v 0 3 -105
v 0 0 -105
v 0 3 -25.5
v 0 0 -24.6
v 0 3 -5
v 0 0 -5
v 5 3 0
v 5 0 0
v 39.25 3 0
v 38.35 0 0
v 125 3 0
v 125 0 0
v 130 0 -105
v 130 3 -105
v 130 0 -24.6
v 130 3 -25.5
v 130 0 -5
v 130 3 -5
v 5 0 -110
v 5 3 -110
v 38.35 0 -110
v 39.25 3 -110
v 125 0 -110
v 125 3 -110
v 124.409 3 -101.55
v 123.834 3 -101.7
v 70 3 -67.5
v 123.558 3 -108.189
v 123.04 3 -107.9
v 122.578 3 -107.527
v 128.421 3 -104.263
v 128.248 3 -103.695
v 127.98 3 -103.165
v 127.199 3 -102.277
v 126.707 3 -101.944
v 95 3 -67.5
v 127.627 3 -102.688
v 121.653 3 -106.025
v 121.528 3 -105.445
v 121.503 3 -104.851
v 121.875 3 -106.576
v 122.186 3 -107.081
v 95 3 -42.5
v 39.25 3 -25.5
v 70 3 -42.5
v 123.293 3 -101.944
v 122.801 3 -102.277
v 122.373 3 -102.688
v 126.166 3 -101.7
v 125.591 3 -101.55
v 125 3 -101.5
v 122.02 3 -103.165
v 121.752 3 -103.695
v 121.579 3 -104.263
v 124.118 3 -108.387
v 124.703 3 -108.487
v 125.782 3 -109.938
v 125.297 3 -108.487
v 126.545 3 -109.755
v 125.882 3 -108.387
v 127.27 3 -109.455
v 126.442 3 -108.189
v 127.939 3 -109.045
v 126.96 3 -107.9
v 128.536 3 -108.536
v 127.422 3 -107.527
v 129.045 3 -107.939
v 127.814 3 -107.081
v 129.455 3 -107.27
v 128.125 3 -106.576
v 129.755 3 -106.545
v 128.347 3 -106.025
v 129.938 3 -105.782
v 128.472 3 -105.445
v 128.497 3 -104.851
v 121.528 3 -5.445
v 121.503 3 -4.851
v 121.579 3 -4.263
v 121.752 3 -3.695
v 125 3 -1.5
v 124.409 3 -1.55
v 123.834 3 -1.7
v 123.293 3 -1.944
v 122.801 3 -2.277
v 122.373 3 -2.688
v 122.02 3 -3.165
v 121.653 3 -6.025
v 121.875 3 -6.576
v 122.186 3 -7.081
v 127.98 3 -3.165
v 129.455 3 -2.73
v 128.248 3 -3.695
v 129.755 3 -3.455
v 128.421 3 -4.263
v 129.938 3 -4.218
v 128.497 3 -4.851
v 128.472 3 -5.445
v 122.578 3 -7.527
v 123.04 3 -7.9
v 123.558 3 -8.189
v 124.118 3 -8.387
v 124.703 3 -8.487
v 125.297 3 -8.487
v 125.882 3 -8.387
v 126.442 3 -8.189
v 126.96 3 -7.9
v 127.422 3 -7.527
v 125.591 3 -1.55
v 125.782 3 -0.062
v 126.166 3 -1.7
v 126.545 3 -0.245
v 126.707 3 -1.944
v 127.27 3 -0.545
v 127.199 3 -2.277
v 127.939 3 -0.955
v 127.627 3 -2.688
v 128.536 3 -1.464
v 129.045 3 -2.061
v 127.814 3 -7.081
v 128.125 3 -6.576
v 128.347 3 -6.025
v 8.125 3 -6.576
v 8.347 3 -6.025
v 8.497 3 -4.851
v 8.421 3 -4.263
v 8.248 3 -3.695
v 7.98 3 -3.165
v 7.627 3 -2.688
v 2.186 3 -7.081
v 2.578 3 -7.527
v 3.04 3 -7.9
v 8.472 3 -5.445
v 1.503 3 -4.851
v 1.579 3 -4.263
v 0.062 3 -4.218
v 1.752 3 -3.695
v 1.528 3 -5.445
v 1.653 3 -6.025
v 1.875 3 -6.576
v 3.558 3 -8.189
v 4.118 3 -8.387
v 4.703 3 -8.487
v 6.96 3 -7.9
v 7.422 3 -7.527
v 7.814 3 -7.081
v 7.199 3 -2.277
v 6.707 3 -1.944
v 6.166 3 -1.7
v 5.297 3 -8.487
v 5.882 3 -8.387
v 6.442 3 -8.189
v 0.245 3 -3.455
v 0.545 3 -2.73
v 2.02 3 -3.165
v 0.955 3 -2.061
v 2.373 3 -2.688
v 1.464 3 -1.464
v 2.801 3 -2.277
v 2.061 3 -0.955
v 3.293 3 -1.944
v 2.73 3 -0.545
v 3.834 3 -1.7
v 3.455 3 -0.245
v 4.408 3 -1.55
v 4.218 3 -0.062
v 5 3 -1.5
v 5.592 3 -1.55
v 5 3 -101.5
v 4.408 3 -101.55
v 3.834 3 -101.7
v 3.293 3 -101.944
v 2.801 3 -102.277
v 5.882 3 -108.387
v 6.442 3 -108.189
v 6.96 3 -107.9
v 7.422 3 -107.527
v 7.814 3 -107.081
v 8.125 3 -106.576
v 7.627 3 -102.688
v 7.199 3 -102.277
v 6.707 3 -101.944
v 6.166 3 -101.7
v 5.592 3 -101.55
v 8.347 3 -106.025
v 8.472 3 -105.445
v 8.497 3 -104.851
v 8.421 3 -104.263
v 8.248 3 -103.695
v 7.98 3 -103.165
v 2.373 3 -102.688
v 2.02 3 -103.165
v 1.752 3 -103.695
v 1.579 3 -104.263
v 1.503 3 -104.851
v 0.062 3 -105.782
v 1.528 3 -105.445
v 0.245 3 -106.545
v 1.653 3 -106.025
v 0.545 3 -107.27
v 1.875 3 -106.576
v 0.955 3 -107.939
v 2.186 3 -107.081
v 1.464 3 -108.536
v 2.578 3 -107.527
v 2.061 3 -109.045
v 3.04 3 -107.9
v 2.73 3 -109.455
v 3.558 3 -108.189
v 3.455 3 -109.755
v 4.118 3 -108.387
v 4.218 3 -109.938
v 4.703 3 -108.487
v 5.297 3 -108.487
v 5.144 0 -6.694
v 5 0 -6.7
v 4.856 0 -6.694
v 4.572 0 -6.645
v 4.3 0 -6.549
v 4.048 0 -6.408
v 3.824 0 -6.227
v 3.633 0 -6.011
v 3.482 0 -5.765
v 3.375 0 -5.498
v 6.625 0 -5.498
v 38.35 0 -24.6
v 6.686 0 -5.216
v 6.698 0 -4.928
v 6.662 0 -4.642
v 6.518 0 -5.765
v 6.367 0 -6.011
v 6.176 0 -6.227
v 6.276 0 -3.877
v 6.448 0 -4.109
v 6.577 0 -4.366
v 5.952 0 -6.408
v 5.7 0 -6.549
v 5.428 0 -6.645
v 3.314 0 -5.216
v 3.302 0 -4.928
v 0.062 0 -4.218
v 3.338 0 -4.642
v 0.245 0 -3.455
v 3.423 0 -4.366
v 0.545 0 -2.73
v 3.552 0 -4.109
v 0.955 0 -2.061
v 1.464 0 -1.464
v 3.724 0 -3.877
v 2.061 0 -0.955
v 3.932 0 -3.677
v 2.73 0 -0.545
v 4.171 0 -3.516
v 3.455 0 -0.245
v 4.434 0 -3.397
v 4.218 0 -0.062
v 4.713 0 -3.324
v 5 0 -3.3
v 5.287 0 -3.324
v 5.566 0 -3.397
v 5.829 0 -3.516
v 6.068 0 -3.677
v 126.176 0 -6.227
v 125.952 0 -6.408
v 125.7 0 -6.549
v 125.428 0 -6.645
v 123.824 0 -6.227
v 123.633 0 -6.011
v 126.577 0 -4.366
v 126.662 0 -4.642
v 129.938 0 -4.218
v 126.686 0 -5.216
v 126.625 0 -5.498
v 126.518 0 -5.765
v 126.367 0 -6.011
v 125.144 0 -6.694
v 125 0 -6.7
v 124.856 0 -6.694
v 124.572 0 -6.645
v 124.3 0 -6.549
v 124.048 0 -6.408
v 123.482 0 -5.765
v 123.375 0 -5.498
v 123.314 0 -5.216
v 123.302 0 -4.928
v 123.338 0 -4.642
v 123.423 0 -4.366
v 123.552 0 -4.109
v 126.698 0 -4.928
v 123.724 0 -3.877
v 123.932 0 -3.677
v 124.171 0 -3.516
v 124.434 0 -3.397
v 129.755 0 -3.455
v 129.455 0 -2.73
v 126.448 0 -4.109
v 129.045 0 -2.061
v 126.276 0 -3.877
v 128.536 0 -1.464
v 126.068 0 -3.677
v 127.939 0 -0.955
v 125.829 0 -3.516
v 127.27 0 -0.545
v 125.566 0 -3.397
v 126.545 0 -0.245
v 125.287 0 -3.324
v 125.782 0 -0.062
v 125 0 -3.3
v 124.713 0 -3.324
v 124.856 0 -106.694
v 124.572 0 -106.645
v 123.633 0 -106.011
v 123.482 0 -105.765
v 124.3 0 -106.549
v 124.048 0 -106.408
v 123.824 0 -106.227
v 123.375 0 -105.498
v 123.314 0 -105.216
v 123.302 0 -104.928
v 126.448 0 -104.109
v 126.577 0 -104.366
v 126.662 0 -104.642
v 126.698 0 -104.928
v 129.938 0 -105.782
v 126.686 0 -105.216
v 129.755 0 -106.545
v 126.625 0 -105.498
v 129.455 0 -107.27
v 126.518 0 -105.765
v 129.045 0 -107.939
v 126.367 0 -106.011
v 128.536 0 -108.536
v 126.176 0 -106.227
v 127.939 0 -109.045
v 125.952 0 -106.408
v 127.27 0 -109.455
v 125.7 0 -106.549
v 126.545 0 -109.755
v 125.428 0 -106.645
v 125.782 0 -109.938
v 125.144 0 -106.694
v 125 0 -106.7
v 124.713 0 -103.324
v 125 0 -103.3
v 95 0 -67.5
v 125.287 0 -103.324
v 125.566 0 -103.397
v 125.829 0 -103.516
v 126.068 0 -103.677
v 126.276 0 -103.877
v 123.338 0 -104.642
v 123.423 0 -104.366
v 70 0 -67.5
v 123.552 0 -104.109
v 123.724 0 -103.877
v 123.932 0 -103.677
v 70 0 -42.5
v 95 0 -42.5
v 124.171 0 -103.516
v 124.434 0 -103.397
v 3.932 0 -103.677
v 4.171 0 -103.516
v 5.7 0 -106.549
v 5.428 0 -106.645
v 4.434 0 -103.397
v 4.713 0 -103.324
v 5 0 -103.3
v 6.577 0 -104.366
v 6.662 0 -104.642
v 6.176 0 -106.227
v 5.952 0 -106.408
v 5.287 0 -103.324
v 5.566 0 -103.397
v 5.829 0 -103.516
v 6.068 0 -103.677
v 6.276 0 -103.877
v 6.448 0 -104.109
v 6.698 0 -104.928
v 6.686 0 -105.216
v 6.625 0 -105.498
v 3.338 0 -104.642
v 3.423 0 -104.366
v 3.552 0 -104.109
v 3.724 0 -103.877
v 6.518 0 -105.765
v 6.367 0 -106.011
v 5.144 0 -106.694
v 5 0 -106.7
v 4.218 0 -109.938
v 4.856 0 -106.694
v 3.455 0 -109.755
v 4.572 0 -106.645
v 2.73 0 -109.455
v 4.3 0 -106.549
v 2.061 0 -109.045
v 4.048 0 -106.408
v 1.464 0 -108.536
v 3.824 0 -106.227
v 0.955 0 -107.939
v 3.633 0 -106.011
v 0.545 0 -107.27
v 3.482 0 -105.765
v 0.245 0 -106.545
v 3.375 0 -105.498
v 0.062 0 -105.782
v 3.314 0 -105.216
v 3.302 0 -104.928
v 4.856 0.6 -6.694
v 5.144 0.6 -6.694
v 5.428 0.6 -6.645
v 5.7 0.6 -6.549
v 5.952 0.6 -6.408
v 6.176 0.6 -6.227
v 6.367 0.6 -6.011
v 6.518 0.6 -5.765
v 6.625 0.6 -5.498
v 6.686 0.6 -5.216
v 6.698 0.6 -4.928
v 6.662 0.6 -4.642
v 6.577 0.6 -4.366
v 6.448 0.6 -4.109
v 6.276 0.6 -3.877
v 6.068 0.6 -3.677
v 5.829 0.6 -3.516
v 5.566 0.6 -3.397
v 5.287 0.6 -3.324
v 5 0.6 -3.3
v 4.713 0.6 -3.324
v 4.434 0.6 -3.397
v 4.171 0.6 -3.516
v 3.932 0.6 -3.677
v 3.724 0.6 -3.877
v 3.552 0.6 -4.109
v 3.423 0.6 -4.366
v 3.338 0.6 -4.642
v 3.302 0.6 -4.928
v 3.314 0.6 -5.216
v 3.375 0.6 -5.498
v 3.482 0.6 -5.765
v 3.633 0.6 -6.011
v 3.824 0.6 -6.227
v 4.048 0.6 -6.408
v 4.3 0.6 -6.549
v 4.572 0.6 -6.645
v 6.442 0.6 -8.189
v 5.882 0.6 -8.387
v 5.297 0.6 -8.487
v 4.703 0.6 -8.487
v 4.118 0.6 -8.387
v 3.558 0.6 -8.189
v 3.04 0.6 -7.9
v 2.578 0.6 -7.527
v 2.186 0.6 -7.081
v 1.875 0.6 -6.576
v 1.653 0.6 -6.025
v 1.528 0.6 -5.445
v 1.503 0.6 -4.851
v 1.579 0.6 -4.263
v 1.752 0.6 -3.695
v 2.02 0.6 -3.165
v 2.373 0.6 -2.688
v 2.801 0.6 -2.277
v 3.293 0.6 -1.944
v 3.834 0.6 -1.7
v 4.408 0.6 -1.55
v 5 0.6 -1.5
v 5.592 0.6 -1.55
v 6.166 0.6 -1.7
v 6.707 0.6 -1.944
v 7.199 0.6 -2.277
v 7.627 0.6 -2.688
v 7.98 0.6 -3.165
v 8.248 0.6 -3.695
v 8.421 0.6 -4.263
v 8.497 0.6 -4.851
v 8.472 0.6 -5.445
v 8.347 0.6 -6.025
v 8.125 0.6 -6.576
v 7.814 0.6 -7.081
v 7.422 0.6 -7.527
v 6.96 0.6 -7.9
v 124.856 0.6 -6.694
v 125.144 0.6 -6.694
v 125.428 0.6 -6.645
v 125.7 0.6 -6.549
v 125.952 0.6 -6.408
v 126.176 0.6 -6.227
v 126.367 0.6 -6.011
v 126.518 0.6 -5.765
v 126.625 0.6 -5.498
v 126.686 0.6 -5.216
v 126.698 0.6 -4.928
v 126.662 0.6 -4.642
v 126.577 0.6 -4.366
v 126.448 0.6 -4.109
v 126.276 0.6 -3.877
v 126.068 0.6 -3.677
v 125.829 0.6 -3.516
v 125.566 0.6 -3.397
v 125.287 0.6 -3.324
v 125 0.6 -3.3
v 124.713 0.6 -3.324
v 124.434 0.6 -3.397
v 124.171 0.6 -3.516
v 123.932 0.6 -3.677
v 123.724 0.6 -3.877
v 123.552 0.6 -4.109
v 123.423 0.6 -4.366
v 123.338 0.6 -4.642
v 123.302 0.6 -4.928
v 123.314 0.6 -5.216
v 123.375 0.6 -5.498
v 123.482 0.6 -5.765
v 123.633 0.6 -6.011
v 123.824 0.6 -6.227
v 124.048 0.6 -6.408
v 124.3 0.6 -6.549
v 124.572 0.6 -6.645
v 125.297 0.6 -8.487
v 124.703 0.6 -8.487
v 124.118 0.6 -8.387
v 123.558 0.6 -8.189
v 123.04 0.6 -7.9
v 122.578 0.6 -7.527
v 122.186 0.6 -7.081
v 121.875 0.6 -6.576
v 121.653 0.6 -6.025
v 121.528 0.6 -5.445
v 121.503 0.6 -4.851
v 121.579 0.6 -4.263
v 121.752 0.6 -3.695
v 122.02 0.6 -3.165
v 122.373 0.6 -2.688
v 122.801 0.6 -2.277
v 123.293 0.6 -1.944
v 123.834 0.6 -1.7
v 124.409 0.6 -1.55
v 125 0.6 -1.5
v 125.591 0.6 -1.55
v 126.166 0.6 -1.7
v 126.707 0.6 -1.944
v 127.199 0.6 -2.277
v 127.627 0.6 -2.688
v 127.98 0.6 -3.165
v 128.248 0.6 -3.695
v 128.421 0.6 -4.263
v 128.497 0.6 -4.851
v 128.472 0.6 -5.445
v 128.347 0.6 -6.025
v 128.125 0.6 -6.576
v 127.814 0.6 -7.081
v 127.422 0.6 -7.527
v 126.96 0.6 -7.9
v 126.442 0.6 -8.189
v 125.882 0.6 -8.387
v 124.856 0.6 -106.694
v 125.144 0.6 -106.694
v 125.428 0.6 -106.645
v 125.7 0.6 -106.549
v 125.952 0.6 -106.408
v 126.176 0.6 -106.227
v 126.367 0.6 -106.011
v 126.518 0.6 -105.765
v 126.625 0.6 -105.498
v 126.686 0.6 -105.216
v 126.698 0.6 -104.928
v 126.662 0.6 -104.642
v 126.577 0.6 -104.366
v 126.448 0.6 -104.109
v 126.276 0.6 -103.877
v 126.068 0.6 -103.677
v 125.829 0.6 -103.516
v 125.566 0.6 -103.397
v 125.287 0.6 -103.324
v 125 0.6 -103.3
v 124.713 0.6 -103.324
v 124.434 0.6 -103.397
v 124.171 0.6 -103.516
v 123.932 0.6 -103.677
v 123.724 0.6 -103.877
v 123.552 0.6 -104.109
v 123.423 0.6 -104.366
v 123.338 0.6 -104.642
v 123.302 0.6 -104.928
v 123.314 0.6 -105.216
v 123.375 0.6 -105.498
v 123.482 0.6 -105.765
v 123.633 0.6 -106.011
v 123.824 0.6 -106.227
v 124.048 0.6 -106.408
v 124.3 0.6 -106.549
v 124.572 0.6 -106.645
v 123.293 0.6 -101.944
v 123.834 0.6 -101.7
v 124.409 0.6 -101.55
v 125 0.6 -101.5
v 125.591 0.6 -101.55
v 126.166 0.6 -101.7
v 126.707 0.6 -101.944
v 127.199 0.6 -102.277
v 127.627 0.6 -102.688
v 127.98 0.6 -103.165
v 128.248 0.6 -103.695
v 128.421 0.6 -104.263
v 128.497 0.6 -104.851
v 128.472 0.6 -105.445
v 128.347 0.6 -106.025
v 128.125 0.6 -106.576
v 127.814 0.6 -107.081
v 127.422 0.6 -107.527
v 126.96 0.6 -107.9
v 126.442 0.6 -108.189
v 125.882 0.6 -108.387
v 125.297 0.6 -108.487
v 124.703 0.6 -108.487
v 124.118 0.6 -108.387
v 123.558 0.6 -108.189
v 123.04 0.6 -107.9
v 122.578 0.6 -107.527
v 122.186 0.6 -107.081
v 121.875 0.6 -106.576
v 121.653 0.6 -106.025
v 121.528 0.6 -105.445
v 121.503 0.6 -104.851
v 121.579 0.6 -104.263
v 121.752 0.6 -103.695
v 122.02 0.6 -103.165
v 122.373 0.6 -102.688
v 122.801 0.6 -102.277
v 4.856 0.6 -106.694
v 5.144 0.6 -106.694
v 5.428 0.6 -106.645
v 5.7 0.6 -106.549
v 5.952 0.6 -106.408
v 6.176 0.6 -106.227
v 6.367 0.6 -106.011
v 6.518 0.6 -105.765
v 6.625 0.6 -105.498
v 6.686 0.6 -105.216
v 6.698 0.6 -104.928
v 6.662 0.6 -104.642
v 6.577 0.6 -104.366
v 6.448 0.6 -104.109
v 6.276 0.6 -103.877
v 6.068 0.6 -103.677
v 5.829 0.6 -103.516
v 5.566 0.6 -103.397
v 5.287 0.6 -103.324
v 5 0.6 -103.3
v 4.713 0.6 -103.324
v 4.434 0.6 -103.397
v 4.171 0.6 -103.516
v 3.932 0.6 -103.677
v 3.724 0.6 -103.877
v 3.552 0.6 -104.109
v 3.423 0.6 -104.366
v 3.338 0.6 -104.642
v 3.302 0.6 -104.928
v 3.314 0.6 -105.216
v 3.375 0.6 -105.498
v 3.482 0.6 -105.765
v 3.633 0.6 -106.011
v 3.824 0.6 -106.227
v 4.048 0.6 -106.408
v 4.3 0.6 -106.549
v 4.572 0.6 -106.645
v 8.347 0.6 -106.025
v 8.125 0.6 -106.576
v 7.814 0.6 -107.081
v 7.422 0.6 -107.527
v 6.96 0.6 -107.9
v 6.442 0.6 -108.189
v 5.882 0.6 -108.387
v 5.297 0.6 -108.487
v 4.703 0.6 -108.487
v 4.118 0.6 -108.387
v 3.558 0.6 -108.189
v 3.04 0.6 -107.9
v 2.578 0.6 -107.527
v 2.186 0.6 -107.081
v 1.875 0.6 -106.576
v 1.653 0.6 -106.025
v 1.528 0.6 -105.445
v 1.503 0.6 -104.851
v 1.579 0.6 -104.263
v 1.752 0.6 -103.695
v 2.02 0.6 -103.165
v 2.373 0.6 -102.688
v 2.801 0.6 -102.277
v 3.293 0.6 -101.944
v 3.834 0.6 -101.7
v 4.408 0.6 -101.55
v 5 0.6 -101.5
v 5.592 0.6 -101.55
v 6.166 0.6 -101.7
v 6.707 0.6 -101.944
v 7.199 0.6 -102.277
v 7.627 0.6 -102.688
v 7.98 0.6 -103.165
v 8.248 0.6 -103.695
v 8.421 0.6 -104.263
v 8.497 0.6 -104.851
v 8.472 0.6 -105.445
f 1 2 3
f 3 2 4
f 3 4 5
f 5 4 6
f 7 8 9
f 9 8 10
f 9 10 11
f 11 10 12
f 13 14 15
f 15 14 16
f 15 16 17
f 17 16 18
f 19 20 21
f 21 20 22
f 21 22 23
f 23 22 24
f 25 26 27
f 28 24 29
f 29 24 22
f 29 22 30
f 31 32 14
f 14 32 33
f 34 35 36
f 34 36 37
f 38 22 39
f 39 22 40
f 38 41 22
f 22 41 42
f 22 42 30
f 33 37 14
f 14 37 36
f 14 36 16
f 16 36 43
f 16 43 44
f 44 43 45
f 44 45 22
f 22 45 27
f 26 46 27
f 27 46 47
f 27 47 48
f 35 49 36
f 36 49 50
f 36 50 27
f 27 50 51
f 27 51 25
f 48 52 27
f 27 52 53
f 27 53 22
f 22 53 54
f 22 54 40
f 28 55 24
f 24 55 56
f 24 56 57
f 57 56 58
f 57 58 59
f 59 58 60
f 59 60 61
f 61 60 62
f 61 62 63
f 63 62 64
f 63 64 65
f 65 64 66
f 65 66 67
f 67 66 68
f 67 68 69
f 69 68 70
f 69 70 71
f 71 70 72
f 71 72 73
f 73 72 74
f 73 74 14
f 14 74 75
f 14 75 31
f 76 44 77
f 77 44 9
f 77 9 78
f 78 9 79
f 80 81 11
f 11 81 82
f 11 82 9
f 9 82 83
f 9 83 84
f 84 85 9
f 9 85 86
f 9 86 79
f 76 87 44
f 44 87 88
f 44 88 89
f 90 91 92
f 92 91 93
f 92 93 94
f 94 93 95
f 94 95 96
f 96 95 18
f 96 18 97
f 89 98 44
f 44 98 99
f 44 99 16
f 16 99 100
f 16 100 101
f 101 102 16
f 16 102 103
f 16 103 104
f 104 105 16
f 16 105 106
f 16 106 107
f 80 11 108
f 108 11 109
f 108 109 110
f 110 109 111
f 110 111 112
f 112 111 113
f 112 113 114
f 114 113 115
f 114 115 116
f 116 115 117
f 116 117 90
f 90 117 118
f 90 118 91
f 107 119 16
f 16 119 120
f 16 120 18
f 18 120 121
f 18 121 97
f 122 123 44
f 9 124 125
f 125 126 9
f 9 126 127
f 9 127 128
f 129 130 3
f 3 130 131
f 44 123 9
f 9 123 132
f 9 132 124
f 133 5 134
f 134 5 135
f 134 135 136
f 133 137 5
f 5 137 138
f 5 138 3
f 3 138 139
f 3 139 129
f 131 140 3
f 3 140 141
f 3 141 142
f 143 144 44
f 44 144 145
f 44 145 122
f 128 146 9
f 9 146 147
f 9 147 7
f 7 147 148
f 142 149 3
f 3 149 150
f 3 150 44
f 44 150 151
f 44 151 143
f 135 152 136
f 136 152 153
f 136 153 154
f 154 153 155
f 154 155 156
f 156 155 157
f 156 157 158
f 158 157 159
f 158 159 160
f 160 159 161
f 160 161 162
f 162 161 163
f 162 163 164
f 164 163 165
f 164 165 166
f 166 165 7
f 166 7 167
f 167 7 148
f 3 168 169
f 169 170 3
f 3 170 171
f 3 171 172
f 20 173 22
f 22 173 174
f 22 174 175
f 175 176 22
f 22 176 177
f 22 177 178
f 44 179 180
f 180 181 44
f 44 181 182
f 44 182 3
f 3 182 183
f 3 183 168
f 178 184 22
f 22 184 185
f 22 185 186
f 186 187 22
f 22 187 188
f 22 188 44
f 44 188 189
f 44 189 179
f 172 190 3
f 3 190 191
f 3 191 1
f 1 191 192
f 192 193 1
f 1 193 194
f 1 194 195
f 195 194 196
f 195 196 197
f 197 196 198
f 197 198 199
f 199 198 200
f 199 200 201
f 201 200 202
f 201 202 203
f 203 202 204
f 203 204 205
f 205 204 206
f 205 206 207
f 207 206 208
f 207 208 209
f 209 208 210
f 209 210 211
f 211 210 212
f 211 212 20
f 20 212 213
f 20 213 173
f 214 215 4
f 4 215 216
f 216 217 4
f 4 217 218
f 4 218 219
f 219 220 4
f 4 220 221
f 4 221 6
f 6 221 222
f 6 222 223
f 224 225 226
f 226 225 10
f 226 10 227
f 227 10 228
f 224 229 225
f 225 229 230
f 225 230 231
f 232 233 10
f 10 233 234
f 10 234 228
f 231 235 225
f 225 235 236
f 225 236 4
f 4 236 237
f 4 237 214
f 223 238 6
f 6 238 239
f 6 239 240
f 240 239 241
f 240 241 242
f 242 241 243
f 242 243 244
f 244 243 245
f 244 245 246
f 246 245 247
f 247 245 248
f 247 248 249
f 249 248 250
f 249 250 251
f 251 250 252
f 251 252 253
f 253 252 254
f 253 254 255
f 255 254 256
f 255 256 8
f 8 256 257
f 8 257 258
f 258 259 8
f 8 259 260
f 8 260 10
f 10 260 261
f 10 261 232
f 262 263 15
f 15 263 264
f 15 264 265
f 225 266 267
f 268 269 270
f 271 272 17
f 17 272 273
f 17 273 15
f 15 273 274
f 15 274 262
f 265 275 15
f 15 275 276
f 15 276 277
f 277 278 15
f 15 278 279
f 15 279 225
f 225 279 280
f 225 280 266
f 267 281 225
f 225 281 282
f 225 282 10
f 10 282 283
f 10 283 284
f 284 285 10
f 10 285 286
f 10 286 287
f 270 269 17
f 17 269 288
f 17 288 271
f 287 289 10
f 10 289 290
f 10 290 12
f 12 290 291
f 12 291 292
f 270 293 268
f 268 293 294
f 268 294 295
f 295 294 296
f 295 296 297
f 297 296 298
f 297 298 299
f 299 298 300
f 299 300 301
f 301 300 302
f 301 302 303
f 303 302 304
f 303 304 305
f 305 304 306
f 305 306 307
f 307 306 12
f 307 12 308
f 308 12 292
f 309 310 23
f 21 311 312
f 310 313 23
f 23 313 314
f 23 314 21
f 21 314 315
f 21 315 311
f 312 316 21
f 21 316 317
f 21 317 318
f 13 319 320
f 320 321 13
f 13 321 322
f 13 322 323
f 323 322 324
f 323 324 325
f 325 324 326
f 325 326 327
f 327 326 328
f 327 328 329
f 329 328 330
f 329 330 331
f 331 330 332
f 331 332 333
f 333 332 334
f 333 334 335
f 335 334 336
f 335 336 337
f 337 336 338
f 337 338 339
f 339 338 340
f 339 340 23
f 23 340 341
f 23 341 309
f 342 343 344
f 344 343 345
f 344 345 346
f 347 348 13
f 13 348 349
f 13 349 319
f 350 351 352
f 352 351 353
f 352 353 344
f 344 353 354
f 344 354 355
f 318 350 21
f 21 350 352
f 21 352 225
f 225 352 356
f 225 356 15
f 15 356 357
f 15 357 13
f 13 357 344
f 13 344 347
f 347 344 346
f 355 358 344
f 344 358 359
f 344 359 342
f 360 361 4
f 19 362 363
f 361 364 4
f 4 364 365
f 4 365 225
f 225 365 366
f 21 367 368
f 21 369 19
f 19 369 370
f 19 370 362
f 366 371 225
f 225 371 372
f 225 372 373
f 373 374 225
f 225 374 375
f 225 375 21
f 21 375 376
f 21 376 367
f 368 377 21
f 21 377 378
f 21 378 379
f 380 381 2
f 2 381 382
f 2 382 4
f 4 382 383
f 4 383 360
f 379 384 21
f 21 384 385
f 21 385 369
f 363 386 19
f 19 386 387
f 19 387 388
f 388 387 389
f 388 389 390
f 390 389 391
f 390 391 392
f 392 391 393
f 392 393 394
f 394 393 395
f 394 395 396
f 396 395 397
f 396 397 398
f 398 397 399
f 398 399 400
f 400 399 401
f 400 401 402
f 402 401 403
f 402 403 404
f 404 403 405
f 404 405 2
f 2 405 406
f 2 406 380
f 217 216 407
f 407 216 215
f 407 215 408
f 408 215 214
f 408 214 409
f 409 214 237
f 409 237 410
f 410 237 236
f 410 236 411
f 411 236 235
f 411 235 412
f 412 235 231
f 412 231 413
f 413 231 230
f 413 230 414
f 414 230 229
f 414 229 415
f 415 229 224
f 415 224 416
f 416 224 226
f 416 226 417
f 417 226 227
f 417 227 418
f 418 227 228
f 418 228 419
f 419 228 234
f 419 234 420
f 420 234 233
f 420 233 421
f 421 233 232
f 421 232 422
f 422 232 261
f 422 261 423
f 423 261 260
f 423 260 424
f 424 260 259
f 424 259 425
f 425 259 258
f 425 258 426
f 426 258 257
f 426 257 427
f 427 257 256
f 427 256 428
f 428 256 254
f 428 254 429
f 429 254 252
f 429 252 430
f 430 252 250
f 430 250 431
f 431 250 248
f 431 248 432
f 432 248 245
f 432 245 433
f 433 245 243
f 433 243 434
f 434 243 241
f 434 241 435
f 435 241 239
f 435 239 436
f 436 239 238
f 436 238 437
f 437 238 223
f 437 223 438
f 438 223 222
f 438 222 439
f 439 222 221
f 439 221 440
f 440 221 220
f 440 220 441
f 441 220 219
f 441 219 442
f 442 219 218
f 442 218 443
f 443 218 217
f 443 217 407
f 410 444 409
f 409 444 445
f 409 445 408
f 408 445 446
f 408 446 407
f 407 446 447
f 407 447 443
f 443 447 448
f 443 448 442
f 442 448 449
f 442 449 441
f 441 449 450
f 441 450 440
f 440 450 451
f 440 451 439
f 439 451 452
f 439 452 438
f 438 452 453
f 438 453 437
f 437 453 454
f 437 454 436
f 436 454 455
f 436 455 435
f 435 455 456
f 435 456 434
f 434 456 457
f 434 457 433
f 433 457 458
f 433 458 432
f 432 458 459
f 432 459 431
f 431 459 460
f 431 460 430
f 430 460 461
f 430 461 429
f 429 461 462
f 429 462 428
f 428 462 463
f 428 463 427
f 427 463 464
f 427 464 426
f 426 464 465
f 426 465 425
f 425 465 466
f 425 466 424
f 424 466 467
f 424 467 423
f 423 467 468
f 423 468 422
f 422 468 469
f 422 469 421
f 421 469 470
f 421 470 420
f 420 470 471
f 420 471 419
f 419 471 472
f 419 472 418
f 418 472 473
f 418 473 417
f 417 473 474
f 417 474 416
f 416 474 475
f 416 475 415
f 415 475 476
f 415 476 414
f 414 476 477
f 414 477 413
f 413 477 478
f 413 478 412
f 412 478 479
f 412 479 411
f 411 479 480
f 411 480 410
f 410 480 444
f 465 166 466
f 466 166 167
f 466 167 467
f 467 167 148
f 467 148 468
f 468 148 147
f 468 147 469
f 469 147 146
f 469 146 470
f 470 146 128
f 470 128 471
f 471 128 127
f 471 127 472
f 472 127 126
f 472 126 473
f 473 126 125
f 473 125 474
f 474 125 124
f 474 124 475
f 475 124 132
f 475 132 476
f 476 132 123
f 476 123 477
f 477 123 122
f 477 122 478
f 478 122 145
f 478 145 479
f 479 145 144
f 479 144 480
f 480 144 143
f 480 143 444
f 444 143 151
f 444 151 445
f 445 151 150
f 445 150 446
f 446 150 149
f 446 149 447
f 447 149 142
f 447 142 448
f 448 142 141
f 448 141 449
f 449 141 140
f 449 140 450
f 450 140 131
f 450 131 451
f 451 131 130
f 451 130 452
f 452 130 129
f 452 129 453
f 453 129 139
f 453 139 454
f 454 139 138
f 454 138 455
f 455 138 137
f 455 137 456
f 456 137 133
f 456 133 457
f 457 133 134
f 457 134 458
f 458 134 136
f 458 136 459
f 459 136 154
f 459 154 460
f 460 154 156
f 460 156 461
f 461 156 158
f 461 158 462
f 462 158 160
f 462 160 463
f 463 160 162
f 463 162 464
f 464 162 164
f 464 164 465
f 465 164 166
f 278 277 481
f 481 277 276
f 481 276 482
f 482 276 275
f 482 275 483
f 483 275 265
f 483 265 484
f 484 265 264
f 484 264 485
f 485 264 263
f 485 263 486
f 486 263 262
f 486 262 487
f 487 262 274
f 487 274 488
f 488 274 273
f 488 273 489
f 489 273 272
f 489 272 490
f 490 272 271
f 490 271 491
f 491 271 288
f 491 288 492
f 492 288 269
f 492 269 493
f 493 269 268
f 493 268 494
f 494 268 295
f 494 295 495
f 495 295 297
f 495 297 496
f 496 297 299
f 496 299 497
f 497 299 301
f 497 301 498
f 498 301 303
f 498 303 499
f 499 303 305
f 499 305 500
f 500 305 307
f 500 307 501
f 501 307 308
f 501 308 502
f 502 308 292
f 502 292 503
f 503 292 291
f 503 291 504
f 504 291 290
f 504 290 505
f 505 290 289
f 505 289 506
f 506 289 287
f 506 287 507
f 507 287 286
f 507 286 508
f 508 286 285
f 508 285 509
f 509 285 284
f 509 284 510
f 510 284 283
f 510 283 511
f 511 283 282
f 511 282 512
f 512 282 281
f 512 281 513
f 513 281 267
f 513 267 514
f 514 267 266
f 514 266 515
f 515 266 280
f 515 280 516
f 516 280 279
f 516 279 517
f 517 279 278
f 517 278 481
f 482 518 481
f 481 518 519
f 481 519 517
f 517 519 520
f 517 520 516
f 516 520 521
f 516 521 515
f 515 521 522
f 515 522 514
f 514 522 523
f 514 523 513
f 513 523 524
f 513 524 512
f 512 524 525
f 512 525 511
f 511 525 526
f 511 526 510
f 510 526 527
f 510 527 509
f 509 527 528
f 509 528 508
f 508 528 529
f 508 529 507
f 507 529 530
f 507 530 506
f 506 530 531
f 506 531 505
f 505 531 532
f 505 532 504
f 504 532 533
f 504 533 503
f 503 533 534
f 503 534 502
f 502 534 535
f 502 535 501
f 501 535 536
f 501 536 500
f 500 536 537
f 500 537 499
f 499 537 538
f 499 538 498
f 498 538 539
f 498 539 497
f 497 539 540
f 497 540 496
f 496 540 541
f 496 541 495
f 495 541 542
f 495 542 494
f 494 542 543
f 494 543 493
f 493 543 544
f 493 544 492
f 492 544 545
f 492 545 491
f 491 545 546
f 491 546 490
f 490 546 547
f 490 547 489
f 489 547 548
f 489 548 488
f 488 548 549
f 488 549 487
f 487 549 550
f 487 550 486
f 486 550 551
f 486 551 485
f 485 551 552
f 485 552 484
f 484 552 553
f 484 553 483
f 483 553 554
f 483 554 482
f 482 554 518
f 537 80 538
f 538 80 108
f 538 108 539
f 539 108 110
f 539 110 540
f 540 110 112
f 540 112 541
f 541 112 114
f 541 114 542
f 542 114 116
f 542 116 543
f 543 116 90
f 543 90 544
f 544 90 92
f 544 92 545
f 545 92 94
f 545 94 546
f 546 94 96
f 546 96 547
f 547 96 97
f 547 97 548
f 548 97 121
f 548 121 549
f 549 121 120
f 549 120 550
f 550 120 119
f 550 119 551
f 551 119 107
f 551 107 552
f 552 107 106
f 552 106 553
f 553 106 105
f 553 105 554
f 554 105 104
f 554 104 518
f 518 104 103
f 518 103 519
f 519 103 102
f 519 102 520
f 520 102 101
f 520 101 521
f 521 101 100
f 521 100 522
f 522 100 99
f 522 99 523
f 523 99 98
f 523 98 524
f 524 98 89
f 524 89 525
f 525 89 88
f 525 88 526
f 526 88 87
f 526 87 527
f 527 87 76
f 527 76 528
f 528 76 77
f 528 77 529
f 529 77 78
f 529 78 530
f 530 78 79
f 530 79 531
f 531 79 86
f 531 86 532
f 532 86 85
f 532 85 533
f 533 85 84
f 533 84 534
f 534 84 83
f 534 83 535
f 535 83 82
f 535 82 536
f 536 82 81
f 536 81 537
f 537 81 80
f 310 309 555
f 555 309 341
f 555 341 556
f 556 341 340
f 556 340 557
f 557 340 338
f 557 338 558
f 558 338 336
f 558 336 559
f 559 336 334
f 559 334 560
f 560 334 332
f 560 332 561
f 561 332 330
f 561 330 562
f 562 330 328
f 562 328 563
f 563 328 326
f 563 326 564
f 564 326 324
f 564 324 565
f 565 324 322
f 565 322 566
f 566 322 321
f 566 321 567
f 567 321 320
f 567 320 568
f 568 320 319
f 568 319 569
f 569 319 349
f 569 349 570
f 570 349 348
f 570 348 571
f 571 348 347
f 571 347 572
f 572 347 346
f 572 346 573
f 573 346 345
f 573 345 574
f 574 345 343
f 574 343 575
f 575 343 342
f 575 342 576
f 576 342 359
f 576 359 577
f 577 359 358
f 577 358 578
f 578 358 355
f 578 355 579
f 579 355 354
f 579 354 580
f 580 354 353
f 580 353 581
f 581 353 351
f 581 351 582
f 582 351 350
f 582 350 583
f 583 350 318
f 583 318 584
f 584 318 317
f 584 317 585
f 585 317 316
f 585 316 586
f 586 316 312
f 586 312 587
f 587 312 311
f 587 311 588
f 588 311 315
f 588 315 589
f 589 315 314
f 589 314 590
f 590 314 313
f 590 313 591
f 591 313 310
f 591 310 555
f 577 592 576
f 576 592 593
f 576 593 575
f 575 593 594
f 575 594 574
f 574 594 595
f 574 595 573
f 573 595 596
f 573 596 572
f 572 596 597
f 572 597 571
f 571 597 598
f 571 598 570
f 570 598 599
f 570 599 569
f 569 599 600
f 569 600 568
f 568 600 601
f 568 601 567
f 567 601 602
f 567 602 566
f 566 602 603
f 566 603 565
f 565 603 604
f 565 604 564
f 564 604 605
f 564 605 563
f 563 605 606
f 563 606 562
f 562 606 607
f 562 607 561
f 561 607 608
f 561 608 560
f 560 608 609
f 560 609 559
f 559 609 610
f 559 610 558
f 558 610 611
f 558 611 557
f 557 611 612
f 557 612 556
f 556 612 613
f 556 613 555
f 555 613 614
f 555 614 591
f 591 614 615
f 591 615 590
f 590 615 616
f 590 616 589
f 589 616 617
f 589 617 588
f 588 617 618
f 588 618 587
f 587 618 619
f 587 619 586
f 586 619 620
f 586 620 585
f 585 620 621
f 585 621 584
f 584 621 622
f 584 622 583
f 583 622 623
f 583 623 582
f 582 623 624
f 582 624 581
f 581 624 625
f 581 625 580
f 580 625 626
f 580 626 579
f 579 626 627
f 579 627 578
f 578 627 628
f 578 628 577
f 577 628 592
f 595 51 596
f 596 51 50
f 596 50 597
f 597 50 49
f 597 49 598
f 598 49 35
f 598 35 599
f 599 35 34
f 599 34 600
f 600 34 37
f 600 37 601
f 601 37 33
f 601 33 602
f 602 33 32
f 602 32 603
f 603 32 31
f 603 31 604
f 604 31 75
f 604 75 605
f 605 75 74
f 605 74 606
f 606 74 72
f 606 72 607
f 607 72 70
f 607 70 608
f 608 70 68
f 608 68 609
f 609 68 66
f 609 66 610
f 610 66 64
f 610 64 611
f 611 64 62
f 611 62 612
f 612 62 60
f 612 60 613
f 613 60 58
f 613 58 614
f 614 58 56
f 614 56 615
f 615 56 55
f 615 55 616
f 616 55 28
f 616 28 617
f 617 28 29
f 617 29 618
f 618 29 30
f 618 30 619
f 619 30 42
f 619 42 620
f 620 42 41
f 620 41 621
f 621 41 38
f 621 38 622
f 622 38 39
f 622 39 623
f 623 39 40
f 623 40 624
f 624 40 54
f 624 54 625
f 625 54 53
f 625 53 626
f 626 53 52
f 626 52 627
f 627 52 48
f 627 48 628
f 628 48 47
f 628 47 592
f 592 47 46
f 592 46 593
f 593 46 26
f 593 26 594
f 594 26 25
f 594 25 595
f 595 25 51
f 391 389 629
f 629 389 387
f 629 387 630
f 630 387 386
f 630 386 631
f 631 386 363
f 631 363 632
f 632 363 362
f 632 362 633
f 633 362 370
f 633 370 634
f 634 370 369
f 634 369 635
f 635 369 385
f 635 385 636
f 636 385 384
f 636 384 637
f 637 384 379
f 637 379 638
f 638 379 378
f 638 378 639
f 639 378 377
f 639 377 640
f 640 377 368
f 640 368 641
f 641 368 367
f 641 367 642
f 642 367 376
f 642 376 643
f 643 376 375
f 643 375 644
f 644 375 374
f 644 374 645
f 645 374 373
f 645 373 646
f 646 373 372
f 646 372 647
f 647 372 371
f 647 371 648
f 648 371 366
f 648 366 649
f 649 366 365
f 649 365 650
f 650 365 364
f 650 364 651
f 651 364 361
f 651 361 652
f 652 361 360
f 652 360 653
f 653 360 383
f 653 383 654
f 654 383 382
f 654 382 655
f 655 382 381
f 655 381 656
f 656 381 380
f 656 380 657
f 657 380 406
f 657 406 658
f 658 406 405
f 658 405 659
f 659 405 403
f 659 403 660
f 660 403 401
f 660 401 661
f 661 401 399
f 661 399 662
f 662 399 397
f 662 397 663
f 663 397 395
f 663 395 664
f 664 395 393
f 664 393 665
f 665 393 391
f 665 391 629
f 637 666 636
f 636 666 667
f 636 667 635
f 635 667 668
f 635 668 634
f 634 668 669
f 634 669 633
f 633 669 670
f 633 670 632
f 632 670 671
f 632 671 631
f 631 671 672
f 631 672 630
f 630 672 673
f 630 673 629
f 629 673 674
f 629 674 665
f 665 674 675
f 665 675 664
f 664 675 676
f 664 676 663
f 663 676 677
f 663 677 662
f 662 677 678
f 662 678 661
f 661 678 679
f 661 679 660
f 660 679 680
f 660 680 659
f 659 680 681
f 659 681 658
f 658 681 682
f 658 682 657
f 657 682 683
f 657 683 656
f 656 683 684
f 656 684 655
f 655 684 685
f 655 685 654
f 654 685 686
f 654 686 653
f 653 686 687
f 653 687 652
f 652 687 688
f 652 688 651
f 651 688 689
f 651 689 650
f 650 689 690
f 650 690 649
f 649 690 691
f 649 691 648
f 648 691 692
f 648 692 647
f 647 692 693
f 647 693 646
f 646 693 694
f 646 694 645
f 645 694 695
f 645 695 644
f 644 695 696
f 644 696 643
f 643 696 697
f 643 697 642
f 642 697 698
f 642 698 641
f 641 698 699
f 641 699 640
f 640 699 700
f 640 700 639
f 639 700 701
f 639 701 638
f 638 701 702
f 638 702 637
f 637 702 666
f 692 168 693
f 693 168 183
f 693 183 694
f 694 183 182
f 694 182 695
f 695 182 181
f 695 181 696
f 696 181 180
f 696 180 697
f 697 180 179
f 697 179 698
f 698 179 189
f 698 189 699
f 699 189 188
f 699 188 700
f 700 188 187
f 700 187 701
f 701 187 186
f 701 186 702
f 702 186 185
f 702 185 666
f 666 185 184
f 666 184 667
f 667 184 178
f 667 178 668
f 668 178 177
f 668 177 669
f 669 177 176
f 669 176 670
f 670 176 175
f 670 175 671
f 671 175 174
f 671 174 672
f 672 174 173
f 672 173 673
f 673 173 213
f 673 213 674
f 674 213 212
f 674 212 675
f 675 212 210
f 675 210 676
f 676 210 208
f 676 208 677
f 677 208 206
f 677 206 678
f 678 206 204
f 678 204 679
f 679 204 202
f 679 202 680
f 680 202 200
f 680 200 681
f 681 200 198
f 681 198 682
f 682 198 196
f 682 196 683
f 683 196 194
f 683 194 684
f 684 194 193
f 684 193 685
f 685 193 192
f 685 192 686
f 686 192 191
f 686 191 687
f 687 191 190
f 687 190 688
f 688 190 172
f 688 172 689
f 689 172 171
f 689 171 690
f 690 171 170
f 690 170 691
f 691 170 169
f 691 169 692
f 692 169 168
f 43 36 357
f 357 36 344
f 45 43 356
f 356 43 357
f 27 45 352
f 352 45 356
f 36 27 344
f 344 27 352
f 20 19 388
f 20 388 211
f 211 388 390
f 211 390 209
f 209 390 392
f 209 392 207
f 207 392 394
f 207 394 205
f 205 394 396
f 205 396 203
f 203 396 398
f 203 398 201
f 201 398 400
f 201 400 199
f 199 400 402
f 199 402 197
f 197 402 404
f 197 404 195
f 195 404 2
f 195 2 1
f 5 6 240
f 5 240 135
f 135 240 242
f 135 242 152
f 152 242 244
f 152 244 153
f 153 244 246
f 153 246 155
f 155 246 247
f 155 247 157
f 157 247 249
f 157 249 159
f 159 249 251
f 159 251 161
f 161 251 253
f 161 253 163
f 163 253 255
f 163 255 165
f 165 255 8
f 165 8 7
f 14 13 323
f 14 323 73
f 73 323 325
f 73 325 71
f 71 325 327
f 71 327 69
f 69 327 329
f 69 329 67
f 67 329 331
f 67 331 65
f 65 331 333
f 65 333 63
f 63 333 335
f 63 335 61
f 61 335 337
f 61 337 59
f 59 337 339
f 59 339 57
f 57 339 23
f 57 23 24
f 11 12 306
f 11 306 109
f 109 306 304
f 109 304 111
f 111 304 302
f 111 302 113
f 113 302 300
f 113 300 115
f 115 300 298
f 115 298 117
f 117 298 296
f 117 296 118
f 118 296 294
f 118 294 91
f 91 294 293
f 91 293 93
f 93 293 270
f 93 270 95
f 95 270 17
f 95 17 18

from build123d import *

# Parameters (mm, degrees)
SKETCH1_W                                        = 130
SKETCH1_H                                        = 110
BOSS_EXTRUDE1_DEPTH                              = 3
CBORE_FOR_M3_PAN_HEAD_MACHINE_SCREW1_D           = 3.4
CBORE_FOR_M3_PAN_HEAD_MACHINE_SCREW1_DEPTH       = 7
CBORE_FOR_M3_PAN_HEAD_MACHINE_SCREW1_CBORE_D     = 7
CBORE_FOR_M3_PAN_HEAD_MACHINE_SCREW1_CBORE_DEPTH = 2.4
CBORE_FOR_M3_PAN_HEAD_MACHINE_SCREW1_TIP         = 1.021463052
SKETCH10_W                                       = 25
SKETCH10_H                                       = 25
CUT_EXTRUDE1_DEPTH                               = 5
FILLET1_R                                        = 5


with BuildPart() as part:
    # Sketch1 → Boss-Extrude1 (new body)
    with BuildSketch(Plane(origin=(0, 0, 0), x_dir=(1, 0, 0), z_dir=(0, 1, 0))):
        with Locations((65, 55)):
            Rectangle(SKETCH1_W, SKETCH1_H)
    extrude(amount=BOSS_EXTRUDE1_DEPTH)

    # CBORE for M3 Pan Head Machine Screw1
    with Locations(Plane(origin=(0, 3, 0), x_dir=(1, 0, 0), z_dir=(0, 1, 0))):
        with Locations((5, 105), (125, 105), (125, 5), (5, 5)):
            CounterBoreHole(CBORE_FOR_M3_PAN_HEAD_MACHINE_SCREW1_D / 2, CBORE_FOR_M3_PAN_HEAD_MACHINE_SCREW1_CBORE_D / 2, CBORE_FOR_M3_PAN_HEAD_MACHINE_SCREW1_CBORE_DEPTH, depth=CBORE_FOR_M3_PAN_HEAD_MACHINE_SCREW1_DEPTH)
            with Locations((0, 0, -(CBORE_FOR_M3_PAN_HEAD_MACHINE_SCREW1_DEPTH + CBORE_FOR_M3_PAN_HEAD_MACHINE_SCREW1_TIP / 2))):  # 118° drill point
                Cone(0, CBORE_FOR_M3_PAN_HEAD_MACHINE_SCREW1_D / 2, CBORE_FOR_M3_PAN_HEAD_MACHINE_SCREW1_TIP, mode=Mode.SUBTRACT)

    # Sketch10 → Cut-Extrude1 (cut)
    with BuildSketch(Plane(origin=(0, 3, 0), x_dir=(1, 0, 0), z_dir=(0, 1, 0))):
        with Locations((82.5, 55)):
            Rectangle(SKETCH10_W, SKETCH10_H)
    extrude(amount=-CUT_EXTRUDE1_DEPTH, mode=Mode.SUBTRACT)

    # Fillet1
    fillet1_edges = [part.edges().sort_by_distance(p)[0] for p in [
        (0, 1.5, -110),
        (130, 1.5, -110),
        (130, 1.5, 0),
        (0, 1.5, 0),
    ]]
    fillet(fillet1_edges, radius=FILLET1_R)


solid = part.part
